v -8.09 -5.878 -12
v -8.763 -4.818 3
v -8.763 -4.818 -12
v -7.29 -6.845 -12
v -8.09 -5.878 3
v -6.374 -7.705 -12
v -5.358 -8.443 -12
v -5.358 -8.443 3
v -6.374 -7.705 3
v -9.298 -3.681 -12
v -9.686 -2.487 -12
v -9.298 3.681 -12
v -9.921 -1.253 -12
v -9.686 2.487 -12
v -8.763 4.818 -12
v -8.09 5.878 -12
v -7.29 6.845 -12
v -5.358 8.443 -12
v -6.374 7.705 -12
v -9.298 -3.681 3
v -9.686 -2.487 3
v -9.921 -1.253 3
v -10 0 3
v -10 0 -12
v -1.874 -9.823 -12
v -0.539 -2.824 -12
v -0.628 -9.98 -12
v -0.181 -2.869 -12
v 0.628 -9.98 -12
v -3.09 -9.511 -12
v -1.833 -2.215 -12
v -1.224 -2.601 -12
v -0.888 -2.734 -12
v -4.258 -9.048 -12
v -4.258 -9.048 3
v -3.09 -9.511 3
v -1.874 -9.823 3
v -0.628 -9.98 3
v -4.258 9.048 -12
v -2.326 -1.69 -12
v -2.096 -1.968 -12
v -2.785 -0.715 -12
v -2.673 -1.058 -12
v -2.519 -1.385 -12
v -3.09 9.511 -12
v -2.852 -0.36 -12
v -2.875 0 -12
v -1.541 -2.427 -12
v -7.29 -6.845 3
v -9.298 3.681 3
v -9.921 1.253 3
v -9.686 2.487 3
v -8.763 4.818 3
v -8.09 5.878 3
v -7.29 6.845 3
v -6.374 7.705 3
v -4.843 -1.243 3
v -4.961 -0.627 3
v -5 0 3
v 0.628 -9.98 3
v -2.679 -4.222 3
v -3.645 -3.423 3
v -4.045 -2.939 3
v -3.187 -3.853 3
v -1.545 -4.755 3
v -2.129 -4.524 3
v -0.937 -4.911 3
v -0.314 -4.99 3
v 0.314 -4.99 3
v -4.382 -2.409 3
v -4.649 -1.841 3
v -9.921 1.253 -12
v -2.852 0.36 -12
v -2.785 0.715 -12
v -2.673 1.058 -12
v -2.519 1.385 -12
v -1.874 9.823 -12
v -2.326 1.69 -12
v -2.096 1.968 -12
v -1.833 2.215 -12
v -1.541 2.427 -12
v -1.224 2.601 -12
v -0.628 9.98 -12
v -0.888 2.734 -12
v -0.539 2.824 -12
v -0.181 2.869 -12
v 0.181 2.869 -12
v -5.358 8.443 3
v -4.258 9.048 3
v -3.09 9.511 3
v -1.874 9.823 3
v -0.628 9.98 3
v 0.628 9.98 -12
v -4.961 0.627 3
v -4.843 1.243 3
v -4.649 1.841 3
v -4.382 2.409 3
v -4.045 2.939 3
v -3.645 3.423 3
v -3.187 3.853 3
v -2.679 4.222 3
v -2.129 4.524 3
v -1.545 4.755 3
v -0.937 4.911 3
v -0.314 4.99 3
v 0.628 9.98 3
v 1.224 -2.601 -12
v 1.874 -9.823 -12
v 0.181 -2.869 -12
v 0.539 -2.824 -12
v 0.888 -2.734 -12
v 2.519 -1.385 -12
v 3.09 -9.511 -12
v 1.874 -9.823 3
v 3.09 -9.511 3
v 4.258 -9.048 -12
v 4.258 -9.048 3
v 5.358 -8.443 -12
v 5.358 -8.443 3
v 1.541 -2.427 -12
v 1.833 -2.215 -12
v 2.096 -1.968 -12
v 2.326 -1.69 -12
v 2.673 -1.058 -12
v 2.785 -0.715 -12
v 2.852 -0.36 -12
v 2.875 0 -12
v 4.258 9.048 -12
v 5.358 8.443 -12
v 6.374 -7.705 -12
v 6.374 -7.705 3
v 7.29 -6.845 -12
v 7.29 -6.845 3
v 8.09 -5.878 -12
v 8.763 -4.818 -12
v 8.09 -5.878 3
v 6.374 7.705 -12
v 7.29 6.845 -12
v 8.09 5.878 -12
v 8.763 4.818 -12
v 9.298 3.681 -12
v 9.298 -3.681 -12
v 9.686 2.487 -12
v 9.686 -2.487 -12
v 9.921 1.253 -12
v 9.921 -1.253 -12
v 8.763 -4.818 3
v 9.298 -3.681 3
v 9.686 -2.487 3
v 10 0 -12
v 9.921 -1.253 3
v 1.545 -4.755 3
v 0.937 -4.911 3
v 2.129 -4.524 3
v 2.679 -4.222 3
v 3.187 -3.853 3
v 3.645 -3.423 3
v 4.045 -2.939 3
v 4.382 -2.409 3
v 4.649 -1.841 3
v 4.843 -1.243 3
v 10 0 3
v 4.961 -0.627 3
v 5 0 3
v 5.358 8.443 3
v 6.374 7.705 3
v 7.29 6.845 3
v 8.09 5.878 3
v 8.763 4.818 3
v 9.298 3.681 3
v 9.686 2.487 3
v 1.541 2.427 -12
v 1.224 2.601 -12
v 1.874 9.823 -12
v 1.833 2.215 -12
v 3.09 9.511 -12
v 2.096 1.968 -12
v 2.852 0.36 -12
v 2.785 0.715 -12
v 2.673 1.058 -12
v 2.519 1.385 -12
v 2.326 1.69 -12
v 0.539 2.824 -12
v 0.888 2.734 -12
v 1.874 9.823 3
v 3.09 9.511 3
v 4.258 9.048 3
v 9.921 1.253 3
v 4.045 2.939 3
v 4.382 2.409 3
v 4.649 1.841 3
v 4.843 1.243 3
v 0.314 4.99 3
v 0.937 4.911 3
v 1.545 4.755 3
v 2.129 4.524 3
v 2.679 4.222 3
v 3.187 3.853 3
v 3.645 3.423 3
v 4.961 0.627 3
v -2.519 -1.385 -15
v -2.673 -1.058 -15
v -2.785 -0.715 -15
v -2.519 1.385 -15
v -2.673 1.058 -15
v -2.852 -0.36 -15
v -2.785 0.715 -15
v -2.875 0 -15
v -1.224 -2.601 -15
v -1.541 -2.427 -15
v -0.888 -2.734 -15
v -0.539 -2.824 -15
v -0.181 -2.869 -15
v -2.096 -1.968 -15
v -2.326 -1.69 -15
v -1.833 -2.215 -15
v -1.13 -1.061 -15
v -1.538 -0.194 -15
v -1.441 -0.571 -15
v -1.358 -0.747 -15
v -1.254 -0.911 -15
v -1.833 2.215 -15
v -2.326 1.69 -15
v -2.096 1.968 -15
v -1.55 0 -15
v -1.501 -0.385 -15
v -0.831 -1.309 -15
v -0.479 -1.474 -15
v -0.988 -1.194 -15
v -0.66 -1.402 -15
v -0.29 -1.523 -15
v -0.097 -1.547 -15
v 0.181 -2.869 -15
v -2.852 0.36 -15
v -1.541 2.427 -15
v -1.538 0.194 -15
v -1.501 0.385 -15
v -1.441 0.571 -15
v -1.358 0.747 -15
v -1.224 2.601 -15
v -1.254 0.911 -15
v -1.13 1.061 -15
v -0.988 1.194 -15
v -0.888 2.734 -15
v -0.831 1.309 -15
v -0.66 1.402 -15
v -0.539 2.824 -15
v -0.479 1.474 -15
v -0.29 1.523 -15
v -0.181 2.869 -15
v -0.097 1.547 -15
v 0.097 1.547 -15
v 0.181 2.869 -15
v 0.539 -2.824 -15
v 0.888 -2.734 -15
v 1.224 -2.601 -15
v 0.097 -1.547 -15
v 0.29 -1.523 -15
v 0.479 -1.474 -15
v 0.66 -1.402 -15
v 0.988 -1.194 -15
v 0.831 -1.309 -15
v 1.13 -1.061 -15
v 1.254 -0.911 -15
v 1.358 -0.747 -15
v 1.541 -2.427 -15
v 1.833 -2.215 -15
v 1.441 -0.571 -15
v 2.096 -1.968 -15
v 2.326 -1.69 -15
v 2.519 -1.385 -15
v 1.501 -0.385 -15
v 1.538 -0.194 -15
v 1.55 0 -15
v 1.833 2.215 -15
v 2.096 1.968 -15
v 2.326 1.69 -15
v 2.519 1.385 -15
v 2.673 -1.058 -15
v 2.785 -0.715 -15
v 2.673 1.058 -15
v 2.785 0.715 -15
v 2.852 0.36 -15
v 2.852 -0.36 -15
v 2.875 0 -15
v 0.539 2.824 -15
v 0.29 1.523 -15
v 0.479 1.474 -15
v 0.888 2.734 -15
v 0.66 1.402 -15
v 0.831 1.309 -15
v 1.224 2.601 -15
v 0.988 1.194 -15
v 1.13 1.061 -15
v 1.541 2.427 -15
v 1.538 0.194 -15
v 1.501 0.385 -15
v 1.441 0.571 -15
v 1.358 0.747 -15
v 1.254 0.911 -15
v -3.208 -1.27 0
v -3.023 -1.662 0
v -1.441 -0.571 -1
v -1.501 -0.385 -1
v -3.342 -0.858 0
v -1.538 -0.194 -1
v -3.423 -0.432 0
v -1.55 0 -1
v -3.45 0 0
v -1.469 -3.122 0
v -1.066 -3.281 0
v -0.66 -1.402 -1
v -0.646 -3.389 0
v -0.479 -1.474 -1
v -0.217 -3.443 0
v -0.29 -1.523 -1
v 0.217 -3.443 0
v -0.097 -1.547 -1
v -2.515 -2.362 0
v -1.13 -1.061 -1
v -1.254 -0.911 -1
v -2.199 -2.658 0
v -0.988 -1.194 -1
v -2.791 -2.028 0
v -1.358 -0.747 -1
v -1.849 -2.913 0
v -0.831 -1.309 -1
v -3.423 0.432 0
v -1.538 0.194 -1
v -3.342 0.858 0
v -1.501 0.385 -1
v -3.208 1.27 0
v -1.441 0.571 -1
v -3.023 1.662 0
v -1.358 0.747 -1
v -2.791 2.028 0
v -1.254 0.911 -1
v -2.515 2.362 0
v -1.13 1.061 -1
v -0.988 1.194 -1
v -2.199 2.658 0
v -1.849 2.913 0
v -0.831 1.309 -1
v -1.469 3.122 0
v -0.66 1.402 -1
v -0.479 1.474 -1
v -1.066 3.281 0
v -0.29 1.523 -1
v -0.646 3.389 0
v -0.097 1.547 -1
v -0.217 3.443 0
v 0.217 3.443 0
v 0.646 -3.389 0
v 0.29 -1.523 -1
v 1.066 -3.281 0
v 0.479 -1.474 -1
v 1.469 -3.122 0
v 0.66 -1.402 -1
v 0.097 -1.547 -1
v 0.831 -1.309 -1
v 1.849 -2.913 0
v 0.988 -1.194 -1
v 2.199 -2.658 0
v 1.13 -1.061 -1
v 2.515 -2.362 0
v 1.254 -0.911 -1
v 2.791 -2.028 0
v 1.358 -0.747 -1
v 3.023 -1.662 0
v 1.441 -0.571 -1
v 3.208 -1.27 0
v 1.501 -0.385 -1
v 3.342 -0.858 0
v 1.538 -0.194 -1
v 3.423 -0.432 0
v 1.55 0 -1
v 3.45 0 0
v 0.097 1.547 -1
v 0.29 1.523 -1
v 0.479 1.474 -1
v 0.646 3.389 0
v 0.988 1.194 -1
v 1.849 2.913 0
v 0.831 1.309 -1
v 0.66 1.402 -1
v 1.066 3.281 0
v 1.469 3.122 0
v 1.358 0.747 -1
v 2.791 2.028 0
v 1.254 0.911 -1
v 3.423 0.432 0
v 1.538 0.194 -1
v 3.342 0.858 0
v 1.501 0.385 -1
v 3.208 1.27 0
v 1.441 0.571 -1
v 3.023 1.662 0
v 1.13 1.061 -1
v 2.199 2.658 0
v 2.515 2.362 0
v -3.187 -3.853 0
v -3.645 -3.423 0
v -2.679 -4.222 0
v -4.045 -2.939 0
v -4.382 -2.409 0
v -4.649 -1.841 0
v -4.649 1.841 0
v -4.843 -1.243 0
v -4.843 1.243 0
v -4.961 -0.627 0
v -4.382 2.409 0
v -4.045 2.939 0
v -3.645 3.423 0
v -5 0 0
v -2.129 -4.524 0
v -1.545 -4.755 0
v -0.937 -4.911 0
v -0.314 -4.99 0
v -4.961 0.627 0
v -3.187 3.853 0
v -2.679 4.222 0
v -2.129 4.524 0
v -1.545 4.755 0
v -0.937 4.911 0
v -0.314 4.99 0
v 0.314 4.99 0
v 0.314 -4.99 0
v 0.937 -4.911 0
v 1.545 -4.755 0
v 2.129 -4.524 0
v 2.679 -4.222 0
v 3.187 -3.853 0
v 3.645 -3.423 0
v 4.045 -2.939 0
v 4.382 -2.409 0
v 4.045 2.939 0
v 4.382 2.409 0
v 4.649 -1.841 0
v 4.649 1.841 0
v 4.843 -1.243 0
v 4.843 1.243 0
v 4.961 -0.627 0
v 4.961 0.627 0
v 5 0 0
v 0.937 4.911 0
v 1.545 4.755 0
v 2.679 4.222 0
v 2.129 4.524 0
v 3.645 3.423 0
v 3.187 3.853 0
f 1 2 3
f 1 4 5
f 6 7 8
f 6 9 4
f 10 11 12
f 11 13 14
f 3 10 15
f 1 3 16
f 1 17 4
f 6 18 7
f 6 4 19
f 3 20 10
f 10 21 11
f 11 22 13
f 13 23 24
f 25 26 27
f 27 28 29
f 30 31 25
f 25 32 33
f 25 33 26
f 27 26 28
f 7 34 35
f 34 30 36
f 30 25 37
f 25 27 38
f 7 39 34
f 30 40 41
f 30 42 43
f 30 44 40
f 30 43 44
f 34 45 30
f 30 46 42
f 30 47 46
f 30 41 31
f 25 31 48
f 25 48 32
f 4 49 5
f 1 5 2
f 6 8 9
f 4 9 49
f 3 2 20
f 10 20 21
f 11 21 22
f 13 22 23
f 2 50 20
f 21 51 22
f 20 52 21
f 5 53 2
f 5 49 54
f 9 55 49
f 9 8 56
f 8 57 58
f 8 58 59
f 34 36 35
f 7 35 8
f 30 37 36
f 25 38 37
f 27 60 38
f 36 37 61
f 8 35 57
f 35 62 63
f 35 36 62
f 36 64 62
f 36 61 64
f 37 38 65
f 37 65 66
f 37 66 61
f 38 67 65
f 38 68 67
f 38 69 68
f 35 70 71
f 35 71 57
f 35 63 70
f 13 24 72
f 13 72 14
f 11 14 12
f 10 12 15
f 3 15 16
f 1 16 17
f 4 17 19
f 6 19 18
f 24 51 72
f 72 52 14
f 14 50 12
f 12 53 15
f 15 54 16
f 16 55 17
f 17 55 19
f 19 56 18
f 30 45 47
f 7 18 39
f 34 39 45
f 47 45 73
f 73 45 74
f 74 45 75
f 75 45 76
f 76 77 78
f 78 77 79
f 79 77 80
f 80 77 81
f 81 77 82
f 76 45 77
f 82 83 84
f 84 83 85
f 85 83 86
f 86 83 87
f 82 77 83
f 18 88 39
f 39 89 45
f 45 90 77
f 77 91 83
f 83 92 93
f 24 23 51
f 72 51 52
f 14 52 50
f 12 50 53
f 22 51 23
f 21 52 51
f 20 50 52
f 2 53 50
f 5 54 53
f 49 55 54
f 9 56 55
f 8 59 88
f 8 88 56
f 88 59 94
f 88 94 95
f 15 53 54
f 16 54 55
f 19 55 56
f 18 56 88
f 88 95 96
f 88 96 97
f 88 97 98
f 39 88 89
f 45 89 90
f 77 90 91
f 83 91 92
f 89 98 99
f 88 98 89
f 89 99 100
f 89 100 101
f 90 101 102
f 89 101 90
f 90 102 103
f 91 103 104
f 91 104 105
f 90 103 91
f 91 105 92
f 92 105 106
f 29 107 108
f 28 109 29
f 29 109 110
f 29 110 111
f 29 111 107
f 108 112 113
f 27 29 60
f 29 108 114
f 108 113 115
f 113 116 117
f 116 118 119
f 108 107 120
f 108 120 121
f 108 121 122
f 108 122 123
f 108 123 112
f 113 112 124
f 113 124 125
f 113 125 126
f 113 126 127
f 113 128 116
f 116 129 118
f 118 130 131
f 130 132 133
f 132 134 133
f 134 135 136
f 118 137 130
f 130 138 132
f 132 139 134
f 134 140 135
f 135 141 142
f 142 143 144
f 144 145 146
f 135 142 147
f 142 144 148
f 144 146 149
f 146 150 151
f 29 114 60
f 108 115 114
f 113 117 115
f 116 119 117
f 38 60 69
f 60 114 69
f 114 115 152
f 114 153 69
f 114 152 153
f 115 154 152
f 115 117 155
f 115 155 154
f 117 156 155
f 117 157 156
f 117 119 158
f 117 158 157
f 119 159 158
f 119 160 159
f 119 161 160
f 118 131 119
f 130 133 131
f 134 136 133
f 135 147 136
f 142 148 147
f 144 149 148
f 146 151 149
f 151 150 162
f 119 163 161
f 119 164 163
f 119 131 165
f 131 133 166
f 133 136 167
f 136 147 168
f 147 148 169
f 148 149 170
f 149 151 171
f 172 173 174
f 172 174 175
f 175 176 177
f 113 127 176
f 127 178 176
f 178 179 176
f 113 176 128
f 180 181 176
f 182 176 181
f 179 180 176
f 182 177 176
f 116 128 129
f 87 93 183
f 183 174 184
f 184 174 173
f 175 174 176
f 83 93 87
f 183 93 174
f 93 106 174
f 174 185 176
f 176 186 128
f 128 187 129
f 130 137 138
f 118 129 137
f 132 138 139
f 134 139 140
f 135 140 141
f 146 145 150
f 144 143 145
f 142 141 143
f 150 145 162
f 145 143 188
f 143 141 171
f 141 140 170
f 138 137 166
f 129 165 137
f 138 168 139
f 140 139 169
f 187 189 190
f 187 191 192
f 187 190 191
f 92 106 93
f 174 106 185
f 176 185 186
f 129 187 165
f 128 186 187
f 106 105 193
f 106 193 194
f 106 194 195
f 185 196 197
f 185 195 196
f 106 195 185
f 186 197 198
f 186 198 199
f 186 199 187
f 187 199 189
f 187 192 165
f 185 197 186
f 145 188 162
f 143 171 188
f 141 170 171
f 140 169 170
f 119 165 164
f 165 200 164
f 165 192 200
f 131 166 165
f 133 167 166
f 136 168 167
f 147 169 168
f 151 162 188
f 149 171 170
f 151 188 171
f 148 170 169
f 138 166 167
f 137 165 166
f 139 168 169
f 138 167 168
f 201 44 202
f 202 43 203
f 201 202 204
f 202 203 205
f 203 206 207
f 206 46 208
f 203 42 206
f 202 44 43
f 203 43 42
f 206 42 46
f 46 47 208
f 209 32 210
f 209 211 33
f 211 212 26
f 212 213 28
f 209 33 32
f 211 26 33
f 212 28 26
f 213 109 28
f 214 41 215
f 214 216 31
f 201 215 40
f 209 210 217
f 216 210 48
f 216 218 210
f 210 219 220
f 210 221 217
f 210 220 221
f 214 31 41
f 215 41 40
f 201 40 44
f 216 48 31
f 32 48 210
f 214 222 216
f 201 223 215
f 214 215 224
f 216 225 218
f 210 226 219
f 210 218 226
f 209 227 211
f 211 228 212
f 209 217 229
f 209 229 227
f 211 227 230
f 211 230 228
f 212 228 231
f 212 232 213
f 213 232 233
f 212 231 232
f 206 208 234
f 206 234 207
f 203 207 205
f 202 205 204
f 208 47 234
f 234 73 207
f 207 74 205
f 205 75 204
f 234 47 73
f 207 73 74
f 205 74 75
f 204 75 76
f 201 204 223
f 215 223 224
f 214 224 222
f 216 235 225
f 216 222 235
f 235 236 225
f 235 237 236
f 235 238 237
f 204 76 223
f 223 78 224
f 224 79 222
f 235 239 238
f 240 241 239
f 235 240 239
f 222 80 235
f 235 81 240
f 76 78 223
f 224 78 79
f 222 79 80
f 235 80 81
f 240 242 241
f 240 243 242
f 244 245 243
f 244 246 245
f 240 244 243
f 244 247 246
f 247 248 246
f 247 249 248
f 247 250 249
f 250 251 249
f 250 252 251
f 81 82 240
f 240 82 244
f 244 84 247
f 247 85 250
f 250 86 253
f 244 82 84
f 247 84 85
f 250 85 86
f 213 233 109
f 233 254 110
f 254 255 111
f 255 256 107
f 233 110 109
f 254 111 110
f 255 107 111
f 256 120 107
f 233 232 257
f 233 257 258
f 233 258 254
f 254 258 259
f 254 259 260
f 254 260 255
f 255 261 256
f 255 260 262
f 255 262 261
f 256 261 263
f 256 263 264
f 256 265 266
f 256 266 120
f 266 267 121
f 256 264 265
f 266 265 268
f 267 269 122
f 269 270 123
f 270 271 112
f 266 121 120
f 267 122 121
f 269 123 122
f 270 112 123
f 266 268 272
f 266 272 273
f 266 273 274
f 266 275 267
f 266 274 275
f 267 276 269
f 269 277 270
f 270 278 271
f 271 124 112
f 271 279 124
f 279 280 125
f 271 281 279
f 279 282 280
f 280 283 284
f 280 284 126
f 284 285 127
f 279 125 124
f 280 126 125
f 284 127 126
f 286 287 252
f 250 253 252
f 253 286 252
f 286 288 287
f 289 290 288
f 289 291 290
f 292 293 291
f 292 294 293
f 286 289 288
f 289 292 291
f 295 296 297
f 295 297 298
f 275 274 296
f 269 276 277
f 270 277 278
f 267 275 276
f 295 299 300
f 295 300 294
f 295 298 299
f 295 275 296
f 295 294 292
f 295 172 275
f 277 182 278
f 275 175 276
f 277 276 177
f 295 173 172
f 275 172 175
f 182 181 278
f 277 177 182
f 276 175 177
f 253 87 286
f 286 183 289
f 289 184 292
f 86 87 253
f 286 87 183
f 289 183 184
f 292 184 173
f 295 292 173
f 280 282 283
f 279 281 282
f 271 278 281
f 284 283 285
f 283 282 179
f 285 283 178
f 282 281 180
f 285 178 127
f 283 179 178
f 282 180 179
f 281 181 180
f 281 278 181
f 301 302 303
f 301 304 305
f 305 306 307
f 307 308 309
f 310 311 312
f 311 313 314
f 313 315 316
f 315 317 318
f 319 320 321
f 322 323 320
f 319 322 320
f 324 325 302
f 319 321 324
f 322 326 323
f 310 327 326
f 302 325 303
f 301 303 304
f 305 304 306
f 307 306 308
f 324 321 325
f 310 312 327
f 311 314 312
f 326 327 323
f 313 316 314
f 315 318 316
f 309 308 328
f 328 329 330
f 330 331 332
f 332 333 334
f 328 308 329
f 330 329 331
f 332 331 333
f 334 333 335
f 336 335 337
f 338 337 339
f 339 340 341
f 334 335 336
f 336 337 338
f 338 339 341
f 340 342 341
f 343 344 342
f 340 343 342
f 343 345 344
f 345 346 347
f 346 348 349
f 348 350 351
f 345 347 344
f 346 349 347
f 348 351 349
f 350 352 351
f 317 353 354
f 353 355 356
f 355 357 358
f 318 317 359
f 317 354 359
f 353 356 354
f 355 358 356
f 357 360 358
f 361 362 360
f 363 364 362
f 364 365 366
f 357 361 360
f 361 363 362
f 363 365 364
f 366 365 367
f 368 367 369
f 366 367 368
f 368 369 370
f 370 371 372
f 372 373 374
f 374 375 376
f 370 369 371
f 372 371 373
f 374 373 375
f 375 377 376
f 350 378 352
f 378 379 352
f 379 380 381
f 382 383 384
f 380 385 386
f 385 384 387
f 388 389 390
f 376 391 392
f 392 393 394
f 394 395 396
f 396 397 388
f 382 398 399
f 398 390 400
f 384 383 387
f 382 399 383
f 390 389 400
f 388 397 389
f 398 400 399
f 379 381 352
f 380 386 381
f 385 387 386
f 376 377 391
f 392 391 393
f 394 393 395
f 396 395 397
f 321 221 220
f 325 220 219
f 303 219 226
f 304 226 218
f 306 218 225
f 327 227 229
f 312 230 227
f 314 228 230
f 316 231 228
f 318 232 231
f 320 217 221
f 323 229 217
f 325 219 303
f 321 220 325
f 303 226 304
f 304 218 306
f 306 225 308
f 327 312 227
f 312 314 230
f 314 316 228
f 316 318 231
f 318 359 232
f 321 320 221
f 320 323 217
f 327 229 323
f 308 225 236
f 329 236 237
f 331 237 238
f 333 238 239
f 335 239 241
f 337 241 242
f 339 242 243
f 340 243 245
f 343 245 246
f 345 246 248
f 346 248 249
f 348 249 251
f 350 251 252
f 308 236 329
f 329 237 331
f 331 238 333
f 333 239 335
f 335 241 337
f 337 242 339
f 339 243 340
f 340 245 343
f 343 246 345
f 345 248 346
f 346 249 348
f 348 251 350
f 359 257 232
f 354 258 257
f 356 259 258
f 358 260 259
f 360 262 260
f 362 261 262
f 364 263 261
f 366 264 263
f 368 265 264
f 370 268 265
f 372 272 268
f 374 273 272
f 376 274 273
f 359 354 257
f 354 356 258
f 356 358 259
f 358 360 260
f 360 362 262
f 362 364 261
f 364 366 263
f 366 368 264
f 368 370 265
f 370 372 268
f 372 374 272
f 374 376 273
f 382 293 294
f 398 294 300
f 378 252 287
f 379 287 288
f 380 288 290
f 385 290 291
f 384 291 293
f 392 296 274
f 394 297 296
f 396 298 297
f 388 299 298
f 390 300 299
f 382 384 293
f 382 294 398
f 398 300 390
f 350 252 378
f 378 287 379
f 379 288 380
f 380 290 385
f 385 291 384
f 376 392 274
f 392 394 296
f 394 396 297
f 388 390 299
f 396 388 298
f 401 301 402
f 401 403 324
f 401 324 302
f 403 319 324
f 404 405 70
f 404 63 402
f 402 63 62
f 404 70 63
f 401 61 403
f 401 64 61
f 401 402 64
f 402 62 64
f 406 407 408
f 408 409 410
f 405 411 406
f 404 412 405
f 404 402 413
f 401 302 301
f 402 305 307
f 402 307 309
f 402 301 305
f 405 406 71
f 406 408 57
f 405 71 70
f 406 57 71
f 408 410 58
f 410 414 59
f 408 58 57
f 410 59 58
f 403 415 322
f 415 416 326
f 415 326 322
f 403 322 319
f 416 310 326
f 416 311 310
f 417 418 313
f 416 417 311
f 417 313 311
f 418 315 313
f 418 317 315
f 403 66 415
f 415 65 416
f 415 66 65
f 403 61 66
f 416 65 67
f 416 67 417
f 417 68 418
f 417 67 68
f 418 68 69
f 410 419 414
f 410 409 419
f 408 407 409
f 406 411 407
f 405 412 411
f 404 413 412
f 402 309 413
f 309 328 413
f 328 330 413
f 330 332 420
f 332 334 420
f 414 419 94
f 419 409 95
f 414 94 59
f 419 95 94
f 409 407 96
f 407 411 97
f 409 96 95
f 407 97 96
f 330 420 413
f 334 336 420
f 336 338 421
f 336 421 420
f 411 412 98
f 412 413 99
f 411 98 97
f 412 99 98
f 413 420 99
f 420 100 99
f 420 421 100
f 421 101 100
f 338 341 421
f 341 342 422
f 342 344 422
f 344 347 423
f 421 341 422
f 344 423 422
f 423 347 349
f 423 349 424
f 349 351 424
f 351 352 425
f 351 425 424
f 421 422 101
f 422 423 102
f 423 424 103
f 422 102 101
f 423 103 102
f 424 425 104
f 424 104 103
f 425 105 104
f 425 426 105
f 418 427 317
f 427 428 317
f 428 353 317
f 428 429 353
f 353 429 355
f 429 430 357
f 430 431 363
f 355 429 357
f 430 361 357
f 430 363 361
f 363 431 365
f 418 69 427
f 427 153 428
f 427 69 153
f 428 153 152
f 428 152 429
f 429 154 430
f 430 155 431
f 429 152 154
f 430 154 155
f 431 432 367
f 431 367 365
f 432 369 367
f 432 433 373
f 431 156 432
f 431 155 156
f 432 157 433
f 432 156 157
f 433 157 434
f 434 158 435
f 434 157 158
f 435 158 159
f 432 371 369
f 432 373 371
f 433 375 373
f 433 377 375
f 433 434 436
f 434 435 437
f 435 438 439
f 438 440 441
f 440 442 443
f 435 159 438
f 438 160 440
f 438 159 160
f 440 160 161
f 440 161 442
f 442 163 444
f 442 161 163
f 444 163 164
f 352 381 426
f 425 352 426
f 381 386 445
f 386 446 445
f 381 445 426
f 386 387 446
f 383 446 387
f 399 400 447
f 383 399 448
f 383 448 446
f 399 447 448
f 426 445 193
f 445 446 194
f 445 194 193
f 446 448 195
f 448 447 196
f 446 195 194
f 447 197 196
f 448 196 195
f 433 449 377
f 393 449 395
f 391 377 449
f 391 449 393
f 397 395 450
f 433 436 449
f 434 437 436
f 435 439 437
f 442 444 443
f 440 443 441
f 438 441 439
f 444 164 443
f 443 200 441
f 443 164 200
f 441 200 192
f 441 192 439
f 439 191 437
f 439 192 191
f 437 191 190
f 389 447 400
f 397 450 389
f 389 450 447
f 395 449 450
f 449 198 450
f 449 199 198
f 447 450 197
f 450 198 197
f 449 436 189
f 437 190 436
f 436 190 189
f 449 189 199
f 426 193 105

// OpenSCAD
$fn = 50;

difference() {
	union() {
		translate(v = [0, 0, -12.0]) {
			cylinder(h = 15, r = 10.0);
		}
		#translate(v = [0, 0, -15.0]) {
			cylinder(h = 15, r = 2.875);
		}
	}
	union() {
		translate(v = [0, 0, 0]) {
			rotate(a = [0, 0, 0]) {
				difference() {
					union() {
						translate(v = [0, 0, -15.0]) {
							cylinder(h = 15, r = 1.25);
						}
						translate(v = [0, 0, -1.0]) {
							cylinder(h = 1.0, r1 = 1.55, r2 = 3.45);
						}
						translate(v = [0, 0, -15.0]) {
							cylinder(h = 15, r = 1.55);
						}
						translate(v = [0, 0, -15.0]) {
							cylinder(h = 15, r = 1.25);
						}
					}
					union();
				}
			}
		}
		#cylinder(h = 3, r = 5.0);
	}
}
